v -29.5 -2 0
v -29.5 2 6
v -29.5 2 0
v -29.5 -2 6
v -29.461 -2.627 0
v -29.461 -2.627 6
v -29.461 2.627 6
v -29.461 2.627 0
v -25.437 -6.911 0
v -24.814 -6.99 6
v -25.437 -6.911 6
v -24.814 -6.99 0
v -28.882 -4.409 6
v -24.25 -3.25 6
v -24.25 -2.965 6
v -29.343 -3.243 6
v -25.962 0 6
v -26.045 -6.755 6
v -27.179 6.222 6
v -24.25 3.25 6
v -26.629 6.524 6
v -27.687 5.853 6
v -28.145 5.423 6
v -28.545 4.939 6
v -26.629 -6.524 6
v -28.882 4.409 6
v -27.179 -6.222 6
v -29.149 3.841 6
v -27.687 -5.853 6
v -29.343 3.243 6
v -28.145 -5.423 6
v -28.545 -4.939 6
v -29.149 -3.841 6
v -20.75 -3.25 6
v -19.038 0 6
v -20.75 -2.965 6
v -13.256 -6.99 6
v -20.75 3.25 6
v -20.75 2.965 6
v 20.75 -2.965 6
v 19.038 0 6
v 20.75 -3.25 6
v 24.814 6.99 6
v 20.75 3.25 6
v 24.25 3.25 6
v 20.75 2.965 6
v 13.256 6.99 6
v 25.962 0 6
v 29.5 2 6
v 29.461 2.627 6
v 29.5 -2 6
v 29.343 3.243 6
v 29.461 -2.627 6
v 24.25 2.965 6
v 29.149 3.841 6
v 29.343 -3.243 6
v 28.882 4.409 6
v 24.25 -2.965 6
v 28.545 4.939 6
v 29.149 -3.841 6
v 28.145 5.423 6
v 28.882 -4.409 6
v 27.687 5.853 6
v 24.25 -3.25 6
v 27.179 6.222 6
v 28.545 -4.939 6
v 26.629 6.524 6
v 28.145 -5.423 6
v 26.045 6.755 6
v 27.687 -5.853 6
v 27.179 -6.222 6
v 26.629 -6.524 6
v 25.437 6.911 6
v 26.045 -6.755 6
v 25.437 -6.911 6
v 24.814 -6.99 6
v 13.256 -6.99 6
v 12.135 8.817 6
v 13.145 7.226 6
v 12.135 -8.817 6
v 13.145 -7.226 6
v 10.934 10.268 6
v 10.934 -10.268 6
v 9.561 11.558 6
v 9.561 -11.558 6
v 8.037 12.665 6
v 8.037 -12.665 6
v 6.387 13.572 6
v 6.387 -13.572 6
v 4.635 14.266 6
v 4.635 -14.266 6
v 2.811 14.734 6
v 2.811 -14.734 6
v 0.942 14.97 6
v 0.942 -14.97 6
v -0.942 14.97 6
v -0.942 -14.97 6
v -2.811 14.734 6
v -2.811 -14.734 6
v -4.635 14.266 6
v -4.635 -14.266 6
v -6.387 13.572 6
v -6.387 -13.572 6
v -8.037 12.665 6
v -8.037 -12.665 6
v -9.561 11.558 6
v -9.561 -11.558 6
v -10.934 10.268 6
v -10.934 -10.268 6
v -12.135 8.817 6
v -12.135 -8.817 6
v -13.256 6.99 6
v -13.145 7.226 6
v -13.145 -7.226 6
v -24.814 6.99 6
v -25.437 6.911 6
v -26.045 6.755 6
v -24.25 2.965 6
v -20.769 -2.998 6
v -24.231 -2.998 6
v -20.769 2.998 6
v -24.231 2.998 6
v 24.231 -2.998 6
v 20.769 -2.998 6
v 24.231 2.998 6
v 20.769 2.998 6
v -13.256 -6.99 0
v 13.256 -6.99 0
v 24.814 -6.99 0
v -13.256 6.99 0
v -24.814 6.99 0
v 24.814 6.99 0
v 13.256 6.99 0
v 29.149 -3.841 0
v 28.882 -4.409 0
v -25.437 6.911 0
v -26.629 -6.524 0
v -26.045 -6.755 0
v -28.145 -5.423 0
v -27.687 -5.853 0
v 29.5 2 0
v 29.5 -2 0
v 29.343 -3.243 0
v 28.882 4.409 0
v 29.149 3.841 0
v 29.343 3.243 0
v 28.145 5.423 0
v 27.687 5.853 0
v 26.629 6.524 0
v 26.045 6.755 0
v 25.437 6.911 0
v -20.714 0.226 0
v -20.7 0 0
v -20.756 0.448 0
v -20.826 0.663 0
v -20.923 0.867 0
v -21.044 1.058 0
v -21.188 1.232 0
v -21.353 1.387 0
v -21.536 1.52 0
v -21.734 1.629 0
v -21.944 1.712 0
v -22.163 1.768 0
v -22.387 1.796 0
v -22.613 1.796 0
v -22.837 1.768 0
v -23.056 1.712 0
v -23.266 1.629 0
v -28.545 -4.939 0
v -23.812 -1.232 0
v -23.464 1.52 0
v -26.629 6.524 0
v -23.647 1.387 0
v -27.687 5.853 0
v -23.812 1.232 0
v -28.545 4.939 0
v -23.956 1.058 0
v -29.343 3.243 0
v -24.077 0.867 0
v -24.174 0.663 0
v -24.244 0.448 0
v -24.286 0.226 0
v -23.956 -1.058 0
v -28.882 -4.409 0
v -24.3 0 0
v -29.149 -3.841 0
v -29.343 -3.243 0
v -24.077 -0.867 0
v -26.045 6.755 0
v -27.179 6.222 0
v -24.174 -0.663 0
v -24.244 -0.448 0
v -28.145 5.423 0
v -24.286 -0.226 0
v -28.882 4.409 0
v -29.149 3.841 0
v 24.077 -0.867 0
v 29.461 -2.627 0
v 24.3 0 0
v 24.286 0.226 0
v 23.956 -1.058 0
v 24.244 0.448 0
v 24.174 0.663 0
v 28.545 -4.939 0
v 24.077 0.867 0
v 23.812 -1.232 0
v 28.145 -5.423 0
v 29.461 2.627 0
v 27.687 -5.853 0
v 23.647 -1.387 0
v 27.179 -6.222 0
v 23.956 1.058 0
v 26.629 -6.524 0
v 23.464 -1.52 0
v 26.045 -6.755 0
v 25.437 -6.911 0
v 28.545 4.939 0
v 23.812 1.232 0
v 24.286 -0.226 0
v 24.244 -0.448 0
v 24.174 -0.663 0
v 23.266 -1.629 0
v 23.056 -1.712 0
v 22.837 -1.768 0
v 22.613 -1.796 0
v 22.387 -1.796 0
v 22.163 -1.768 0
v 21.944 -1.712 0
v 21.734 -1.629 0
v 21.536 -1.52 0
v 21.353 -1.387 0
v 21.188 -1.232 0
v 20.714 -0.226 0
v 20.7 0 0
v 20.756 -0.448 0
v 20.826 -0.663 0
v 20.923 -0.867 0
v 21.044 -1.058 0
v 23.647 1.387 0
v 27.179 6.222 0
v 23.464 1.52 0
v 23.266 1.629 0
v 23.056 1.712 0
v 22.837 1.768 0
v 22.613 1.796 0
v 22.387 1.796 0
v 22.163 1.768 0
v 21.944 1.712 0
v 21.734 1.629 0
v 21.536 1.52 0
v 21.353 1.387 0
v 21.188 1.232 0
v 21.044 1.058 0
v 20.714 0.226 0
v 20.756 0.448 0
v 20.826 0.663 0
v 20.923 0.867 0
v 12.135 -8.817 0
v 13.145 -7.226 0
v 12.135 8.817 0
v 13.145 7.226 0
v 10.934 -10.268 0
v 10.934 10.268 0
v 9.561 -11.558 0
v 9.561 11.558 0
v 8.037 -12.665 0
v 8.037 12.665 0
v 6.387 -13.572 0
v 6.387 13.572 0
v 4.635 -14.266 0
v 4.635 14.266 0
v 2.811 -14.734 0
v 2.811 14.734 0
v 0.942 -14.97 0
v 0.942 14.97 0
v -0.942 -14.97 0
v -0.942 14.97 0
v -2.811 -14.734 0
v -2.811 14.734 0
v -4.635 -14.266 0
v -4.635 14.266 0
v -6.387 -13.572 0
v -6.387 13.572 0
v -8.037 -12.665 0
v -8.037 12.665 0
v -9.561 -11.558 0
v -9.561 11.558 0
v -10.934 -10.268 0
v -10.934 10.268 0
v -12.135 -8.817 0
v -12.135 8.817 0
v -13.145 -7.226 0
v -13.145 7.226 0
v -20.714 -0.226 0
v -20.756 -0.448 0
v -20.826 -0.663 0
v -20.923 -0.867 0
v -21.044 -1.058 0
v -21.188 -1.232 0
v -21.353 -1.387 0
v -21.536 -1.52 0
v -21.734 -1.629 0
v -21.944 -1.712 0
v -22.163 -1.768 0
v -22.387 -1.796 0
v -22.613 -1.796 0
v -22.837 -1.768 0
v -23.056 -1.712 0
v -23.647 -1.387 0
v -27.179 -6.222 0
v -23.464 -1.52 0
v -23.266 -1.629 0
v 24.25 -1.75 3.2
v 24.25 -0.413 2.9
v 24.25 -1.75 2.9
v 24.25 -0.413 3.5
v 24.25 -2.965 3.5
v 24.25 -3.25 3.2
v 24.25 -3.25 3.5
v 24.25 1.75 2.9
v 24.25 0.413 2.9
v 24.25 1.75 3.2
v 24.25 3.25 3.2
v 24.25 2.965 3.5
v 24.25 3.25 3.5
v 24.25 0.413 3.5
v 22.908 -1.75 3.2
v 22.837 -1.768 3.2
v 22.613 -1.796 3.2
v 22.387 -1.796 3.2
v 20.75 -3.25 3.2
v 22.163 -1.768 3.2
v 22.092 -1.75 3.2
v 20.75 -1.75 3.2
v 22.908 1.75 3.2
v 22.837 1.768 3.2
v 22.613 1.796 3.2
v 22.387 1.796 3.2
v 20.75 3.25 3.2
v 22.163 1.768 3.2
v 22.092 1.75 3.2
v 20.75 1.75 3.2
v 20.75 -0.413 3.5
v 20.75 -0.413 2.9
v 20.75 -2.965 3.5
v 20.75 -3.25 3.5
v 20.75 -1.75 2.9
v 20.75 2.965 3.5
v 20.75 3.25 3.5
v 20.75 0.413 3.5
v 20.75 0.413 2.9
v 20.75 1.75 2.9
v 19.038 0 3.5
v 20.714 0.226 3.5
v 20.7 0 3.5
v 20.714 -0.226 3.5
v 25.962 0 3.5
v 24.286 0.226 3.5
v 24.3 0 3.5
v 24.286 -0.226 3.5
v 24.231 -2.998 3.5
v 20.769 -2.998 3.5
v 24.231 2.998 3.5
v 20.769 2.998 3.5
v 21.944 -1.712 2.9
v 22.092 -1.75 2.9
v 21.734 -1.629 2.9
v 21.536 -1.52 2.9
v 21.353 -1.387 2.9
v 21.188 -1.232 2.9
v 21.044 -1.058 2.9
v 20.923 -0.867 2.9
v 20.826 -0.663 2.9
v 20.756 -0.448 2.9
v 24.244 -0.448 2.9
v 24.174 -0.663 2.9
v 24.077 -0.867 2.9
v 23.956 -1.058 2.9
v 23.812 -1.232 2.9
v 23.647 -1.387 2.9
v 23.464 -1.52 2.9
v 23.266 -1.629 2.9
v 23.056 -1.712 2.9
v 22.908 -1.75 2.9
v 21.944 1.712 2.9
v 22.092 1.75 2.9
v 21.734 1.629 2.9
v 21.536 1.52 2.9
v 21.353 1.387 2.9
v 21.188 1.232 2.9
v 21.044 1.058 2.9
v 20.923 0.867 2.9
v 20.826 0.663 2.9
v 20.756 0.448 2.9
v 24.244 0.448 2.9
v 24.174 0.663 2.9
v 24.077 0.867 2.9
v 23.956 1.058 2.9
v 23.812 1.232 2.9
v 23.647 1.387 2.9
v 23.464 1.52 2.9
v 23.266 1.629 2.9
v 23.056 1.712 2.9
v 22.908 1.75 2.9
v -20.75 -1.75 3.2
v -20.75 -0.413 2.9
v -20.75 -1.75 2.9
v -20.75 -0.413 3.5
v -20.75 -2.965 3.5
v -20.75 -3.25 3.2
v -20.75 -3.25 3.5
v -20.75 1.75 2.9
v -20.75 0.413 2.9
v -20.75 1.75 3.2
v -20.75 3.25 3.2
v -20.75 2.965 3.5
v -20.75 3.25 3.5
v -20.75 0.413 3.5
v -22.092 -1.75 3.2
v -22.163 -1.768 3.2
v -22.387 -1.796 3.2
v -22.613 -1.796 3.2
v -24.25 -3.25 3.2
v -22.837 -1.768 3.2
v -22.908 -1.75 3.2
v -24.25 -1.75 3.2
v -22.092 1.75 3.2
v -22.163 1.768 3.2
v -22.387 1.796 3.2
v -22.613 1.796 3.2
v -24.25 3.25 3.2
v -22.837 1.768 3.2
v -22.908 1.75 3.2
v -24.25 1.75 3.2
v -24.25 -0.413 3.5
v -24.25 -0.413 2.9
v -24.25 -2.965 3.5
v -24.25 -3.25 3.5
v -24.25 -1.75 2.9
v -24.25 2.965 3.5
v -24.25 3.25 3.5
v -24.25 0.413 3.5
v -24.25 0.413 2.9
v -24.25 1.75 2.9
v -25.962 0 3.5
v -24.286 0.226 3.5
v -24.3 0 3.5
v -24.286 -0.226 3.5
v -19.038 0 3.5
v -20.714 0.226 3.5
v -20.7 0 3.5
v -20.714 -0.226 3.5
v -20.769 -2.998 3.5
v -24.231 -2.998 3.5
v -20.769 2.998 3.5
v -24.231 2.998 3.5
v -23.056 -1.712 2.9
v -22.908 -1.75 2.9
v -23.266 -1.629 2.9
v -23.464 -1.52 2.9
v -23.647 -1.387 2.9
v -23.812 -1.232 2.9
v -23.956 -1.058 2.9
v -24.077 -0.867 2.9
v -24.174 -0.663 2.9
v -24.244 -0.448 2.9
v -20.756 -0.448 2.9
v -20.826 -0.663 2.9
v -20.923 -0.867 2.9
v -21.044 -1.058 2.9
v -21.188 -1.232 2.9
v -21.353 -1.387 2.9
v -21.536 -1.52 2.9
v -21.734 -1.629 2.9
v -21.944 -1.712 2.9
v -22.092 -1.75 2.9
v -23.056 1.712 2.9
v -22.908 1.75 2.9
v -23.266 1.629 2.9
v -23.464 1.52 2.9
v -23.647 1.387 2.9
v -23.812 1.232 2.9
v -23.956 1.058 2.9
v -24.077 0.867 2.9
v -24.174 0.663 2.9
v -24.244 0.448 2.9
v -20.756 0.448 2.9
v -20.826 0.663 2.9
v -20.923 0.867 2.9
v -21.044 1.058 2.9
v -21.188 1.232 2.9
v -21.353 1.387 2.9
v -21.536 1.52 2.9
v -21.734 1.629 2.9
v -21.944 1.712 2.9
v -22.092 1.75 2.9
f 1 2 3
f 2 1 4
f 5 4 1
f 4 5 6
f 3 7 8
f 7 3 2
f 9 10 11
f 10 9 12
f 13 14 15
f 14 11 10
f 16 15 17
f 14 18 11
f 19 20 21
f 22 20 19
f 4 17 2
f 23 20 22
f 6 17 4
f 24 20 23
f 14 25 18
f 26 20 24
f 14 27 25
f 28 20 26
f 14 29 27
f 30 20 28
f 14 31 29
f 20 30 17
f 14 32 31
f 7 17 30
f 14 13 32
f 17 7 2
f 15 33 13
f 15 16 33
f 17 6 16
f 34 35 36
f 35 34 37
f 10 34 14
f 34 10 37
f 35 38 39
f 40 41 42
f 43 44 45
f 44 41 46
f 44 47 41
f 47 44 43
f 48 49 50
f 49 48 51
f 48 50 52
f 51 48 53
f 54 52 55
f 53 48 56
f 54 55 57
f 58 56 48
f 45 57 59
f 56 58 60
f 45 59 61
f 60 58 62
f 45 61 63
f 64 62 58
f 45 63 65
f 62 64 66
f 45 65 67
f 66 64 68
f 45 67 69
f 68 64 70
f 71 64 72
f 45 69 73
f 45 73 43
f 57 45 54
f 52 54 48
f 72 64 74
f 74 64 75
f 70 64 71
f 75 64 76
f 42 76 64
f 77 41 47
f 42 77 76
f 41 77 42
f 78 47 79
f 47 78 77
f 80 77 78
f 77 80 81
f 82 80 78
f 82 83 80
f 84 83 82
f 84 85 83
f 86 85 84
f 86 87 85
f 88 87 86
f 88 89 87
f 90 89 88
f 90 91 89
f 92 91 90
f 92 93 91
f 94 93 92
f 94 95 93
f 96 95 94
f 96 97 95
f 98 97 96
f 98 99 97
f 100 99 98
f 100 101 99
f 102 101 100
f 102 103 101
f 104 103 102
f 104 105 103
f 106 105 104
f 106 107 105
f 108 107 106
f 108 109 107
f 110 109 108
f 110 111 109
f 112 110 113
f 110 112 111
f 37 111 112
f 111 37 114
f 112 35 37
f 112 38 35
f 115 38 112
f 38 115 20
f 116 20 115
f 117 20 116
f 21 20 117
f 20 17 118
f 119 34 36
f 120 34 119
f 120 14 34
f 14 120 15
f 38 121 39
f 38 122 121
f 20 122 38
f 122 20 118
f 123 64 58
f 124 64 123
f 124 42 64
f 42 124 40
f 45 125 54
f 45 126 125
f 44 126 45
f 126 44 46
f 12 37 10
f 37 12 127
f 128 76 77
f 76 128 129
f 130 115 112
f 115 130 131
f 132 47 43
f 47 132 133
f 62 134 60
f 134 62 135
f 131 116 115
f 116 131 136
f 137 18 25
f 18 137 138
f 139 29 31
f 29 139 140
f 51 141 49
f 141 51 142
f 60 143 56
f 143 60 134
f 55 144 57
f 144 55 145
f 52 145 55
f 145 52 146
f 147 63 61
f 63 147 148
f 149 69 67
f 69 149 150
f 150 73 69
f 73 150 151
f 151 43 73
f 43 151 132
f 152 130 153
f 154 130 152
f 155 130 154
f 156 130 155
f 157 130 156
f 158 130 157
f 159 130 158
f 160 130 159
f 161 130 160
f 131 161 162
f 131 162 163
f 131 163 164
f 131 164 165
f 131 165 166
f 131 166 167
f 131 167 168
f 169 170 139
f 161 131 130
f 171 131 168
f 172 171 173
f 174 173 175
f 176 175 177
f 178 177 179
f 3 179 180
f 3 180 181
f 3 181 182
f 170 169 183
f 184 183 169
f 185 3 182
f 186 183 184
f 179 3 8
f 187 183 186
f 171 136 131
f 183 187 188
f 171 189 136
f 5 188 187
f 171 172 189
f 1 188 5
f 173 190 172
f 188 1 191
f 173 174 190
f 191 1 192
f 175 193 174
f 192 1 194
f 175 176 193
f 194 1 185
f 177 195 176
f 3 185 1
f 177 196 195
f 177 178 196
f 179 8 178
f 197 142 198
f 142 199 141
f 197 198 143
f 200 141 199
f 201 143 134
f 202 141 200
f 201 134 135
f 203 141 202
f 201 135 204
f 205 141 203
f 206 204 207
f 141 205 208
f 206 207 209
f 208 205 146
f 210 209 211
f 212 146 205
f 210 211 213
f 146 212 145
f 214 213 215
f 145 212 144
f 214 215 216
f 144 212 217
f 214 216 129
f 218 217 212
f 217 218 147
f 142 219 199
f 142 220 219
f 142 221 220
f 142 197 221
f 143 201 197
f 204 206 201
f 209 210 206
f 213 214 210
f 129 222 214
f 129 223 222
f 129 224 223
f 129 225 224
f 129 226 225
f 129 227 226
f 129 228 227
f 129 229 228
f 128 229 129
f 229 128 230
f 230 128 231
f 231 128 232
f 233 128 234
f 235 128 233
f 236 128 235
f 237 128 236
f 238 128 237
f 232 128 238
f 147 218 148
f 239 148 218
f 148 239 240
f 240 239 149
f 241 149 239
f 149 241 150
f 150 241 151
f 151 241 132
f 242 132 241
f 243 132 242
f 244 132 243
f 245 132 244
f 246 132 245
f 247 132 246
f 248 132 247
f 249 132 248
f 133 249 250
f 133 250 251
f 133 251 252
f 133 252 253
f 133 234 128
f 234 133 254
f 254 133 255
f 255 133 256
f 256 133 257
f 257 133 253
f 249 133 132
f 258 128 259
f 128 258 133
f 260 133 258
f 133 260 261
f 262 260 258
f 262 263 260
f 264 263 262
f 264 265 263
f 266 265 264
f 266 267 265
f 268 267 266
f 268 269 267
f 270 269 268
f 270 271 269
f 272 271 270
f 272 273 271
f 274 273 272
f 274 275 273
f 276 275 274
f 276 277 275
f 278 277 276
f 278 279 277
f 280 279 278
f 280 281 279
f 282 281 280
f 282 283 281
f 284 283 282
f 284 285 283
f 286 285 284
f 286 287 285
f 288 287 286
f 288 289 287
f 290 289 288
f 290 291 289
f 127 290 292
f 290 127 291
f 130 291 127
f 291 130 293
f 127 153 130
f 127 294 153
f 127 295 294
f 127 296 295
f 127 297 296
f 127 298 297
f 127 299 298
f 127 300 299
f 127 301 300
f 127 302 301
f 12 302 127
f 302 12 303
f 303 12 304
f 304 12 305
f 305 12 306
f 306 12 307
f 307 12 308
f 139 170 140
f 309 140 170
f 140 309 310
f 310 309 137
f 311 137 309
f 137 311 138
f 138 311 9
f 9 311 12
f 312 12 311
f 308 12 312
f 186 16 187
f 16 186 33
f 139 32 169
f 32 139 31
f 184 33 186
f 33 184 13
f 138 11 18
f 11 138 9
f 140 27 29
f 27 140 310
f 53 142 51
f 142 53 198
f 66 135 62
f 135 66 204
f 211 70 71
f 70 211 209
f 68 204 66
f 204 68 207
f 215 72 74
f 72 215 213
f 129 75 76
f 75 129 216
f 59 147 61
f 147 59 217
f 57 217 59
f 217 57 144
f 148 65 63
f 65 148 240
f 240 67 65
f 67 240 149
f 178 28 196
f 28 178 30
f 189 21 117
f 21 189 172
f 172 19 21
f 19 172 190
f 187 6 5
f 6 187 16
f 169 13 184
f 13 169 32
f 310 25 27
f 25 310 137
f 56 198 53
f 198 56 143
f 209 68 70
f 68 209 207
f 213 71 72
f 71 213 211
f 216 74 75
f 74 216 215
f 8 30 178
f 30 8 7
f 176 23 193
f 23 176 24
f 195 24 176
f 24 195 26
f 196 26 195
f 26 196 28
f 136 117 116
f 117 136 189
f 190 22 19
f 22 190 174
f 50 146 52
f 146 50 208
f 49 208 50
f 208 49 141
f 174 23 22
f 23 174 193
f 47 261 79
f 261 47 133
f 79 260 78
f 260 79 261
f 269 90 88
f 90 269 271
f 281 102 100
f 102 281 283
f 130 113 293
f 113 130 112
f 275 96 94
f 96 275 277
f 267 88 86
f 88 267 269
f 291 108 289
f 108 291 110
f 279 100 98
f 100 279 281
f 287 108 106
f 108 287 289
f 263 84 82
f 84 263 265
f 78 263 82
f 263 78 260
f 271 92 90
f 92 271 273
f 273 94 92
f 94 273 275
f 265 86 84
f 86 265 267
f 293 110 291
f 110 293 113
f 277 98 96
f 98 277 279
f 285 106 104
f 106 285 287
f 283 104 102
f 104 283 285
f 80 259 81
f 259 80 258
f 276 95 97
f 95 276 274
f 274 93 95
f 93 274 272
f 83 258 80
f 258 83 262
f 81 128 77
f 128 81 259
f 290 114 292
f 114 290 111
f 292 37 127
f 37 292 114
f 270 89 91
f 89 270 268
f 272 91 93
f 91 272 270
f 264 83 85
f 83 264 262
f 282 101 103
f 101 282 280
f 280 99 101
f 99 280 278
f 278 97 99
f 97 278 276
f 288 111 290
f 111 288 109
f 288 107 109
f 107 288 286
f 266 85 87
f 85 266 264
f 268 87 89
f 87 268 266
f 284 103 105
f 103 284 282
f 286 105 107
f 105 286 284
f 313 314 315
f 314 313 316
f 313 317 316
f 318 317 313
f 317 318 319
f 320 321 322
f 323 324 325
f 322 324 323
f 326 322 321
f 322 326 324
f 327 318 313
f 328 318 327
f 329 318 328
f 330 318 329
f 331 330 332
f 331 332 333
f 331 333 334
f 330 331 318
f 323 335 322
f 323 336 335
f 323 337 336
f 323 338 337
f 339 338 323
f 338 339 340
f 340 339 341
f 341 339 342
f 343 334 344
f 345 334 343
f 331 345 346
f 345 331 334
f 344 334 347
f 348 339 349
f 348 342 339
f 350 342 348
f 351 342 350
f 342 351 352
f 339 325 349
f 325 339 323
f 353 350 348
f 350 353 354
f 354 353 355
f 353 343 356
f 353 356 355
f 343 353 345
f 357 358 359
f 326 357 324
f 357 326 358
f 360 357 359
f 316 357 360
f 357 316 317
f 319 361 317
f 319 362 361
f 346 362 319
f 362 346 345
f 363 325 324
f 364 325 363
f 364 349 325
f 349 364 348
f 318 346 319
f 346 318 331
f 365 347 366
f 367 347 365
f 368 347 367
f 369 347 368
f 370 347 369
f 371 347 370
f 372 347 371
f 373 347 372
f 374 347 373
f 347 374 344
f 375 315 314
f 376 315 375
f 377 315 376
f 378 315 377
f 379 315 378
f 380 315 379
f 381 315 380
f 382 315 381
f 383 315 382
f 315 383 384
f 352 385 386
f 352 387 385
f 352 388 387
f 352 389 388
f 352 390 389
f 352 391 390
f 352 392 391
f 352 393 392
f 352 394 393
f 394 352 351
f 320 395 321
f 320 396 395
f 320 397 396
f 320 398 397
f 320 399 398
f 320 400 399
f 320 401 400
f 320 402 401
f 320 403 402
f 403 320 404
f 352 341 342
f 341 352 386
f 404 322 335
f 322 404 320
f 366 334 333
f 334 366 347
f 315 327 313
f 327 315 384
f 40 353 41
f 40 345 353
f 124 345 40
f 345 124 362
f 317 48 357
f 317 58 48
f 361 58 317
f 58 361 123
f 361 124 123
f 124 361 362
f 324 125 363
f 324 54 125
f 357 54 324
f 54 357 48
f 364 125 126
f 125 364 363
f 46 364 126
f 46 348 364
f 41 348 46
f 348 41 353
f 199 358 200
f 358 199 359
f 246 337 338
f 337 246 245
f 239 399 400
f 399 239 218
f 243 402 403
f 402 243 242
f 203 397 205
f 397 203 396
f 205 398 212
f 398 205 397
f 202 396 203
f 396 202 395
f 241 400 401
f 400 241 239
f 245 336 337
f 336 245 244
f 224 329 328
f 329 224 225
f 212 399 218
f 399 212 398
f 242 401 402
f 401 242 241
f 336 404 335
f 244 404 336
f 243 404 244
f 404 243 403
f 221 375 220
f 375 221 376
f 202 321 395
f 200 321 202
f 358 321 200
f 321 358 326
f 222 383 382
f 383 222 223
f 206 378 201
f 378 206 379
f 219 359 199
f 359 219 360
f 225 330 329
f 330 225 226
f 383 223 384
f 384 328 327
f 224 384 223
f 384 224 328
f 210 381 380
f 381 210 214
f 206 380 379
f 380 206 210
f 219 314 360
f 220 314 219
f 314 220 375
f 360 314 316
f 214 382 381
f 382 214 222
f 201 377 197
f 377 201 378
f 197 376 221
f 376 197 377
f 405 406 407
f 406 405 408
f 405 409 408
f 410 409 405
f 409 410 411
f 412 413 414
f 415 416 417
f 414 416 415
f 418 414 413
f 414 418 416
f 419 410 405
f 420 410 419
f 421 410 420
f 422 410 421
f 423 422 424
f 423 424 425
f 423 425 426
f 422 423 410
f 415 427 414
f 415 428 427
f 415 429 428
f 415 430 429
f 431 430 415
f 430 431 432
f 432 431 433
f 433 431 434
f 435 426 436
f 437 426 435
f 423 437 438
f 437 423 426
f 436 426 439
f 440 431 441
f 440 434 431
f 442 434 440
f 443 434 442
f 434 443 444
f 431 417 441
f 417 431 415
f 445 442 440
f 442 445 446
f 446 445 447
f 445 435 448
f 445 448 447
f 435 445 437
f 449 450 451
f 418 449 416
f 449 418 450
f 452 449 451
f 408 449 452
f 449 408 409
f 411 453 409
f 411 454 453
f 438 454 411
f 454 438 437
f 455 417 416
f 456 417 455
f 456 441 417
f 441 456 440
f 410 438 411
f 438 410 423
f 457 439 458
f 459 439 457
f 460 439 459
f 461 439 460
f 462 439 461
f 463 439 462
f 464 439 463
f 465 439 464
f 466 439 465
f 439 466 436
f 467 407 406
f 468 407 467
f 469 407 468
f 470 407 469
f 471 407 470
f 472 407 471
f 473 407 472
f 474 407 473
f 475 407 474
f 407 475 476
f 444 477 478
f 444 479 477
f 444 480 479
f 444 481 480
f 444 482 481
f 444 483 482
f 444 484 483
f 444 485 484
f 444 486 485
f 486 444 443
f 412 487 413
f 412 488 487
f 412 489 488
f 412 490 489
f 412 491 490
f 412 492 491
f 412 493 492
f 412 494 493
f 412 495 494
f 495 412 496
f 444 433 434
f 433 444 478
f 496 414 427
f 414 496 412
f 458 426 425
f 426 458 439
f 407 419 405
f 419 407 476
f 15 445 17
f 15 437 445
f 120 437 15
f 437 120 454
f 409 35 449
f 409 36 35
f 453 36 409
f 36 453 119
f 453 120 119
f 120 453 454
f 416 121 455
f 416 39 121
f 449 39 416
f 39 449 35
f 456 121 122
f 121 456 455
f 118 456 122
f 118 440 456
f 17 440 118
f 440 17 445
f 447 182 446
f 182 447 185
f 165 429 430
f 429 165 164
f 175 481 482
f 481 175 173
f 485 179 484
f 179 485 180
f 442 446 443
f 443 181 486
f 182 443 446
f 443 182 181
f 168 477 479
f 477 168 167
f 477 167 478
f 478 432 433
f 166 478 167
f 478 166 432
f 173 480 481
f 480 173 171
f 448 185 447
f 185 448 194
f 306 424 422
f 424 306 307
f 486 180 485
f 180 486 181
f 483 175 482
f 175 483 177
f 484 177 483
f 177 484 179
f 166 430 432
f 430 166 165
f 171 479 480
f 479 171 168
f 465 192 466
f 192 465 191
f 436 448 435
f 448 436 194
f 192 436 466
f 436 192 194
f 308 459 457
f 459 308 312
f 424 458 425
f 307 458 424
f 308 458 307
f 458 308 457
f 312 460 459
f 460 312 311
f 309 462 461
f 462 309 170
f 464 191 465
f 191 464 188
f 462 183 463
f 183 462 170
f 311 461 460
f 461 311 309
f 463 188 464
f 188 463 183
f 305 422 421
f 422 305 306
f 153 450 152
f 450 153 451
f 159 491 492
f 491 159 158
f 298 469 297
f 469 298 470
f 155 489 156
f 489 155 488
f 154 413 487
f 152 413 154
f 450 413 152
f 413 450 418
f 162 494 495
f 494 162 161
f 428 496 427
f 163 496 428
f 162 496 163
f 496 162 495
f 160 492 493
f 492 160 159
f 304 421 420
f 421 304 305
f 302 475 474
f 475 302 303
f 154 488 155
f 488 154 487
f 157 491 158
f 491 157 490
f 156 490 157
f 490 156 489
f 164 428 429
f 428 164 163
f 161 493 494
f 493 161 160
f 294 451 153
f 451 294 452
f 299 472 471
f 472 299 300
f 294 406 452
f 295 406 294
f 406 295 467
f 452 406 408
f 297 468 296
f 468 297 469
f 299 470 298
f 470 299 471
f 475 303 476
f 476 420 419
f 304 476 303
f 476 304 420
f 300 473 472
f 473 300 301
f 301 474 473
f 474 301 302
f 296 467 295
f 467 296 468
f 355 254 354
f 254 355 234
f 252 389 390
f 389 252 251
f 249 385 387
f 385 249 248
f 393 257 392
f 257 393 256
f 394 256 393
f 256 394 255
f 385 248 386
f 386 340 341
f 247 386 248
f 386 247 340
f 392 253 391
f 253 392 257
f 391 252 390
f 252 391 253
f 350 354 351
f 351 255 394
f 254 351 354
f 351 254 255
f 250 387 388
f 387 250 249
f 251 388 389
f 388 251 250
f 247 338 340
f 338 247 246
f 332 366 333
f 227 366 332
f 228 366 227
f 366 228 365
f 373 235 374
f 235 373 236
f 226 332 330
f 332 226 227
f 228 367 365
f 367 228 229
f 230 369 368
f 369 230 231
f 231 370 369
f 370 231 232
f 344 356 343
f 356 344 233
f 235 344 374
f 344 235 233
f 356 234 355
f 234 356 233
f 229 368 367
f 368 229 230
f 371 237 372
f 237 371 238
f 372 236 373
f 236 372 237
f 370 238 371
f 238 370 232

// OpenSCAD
$fn = 50;


difference() {
	union() {
		hull() {
			translate(v = [-24.5000000000, 2.0000000000, 0]) {
				cylinder(h = 6, r = 5);
			}
			translate(v = [24.5000000000, 2.0000000000, 0]) {
				cylinder(h = 6, r = 5);
			}
			translate(v = [-24.5000000000, -2.0000000000, 0]) {
				cylinder(h = 6, r = 5);
			}
			translate(v = [24.5000000000, -2.0000000000, 0]) {
				cylinder(h = 6, r = 5);
			}
		}
		cylinder(h = 6, r = 15.0000000000);
	}
	union() {
		translate(v = [22.5000000000, 0, -20]) {
			rotate(a = [0, 180, 0]) {
				difference() {
					union() {
						translate(v = [0, 0, -26.0000000000]) {
							rotate(a = [0, 0, 0]) {
								difference() {
									union() {
										#translate(v = [-1.7500000000, -3.2500000000, -0.3000000000]) {
											cube(size = [3.5000000000, 6.5000000000, 0.3000000000]);
										}
										#translate(v = [-1.7500000000, -1.7500000000, -0.6000000000]) {
											cube(size = [3.5000000000, 3.5000000000, 0.3000000000]);
										}
										#translate(v = [-1.7500000000, -3.2500000000, 2.5000000000]) {
											cube(size = [3.5000000000, 6.5000000000, 0.3000000000]);
										}
										#translate(v = [-1.7500000000, -1.7500000000, 2.8000000000]) {
											cube(size = [3.5000000000, 3.5000000000, 0.3000000000]);
										}
										#linear_extrude(height = 2.5000000000) {
											polygon(points = [[3.4620000000, 0.0000000000], [1.7310000000, 2.9981799479], [-1.7310000000, 2.9981799479], [-3.4620000000, 0.0000000000], [-1.7310000000, -2.9981799479], [1.7310000000, -2.9981799479]]);
										}
										#translate(v = [-1.7500000000, -3.2500000000, -0.3000000000]) {
											cube(size = [3.5000000000, 6.5000000000, 0.3000000000]);
										}
										#translate(v = [-1.7500000000, -1.7500000000, -0.6000000000]) {
											cube(size = [3.5000000000, 3.5000000000, 0.3000000000]);
										}
										#translate(v = [-1.7500000000, -3.2500000000, 2.5000000000]) {
											cube(size = [3.5000000000, 6.5000000000, 0.3000000000]);
										}
										#translate(v = [-1.7500000000, -1.7500000000, 2.8000000000]) {
											cube(size = [3.5000000000, 3.5000000000, 0.3000000000]);
										}
										#translate(v = [-1.7500000000, -3.2500000000, -0.3000000000]) {
											cube(size = [3.5000000000, 6.5000000000, 0.3000000000]);
										}
										#translate(v = [-1.7500000000, -1.7500000000, -0.6000000000]) {
											cube(size = [3.5000000000, 3.5000000000, 0.3000000000]);
										}
										#translate(v = [-1.7500000000, -3.2500000000, 2.5000000000]) {
											cube(size = [3.5000000000, 6.5000000000, 0.3000000000]);
										}
										#translate(v = [-1.7500000000, -1.7500000000, 2.8000000000]) {
											cube(size = [3.5000000000, 3.5000000000, 0.3000000000]);
										}
									}
									union();
								}
							}
						}
						translate(v = [0, 0, -26.0000000000]) {
							rotate(a = [0, 0, 0]) {
								difference() {
									union() {
										#translate(v = [-1.7500000000, -3.2500000000, -0.3000000000]) {
											cube(size = [3.5000000000, 6.5000000000, 0.3000000000]);
										}
										#translate(v = [-1.7500000000, -1.7500000000, -0.6000000000]) {
											cube(size = [3.5000000000, 3.5000000000, 0.3000000000]);
										}
										#translate(v = [-1.7500000000, -3.2500000000, 2.5000000000]) {
											cube(size = [3.5000000000, 6.5000000000, 0.3000000000]);
										}
										#translate(v = [-1.7500000000, -1.7500000000, 2.8000000000]) {
											cube(size = [3.5000000000, 3.5000000000, 0.3000000000]);
										}
										#linear_extrude(height = 2.5000000000) {
											polygon(points = [[3.4620000000, 0.0000000000], [1.7310000000, 2.9981799479], [-1.7310000000, 2.9981799479], [-3.4620000000, 0.0000000000], [-1.7310000000, -2.9981799479], [1.7310000000, -2.9981799479]]);
										}
										#translate(v = [-1.7500000000, -3.2500000000, -0.3000000000]) {
											cube(size = [3.5000000000, 6.5000000000, 0.3000000000]);
										}
										#translate(v = [-1.7500000000, -1.7500000000, -0.6000000000]) {
											cube(size = [3.5000000000, 3.5000000000, 0.3000000000]);
										}
										#translate(v = [-1.7500000000, -3.2500000000, 2.5000000000]) {
											cube(size = [3.5000000000, 6.5000000000, 0.3000000000]);
										}
										#translate(v = [-1.7500000000, -1.7500000000, 2.8000000000]) {
											cube(size = [3.5000000000, 3.5000000000, 0.3000000000]);
										}
										#translate(v = [-1.7500000000, -3.2500000000, -0.3000000000]) {
											cube(size = [3.5000000000, 6.5000000000, 0.3000000000]);
										}
										#translate(v = [-1.7500000000, -1.7500000000, -0.6000000000]) {
											cube(size = [3.5000000000, 3.5000000000, 0.3000000000]);
										}
										#translate(v = [-1.7500000000, -3.2500000000, 2.5000000000]) {
											cube(size = [3.5000000000, 6.5000000000, 0.3000000000]);
										}
										#translate(v = [-1.7500000000, -1.7500000000, 2.8000000000]) {
											cube(size = [3.5000000000, 3.5000000000, 0.3000000000]);
										}
									}
									union();
								}
							}
						}
						translate(v = [0, 0, -26.0000000000]) {
							rotate(a = [0, 0, 0]) {
								difference() {
									union() {
										#translate(v = [-1.7500000000, -3.2500000000, -0.3000000000]) {
											cube(size = [3.5000000000, 6.5000000000, 0.3000000000]);
										}
										#translate(v = [-1.7500000000, -1.7500000000, -0.6000000000]) {
											cube(size = [3.5000000000, 3.5000000000, 0.3000000000]);
										}
										#translate(v = [-1.7500000000, -3.2500000000, 2.5000000000]) {
											cube(size = [3.5000000000, 6.5000000000, 0.3000000000]);
										}
										#translate(v = [-1.7500000000, -1.7500000000, 2.8000000000]) {
											cube(size = [3.5000000000, 3.5000000000, 0.3000000000]);
										}
										#linear_extrude(height = 2.5000000000) {
											polygon(points = [[3.4620000000, 0.0000000000], [1.7310000000, 2.9981799479], [-1.7310000000, 2.9981799479], [-3.4620000000, 0.0000000000], [-1.7310000000, -2.9981799479], [1.7310000000, -2.9981799479]]);
										}
										#translate(v = [-1.7500000000, -3.2500000000, -0.3000000000]) {
											cube(size = [3.5000000000, 6.5000000000, 0.3000000000]);
										}
										#translate(v = [-1.7500000000, -1.7500000000, -0.6000000000]) {
											cube(size = [3.5000000000, 3.5000000000, 0.3000000000]);
										}
										#translate(v = [-1.7500000000, -3.2500000000, 2.5000000000]) {
											cube(size = [3.5000000000, 6.5000000000, 0.3000000000]);
										}
										#translate(v = [-1.7500000000, -1.7500000000, 2.8000000000]) {
											cube(size = [3.5000000000, 3.5000000000, 0.3000000000]);
										}
										#translate(v = [-1.7500000000, -3.2500000000, -0.3000000000]) {
											cube(size = [3.5000000000, 6.5000000000, 0.3000000000]);
										}
										#translate(v = [-1.7500000000, -1.7500000000, -0.6000000000]) {
											cube(size = [3.5000000000, 3.5000000000, 0.3000000000]);
										}
										#translate(v = [-1.7500000000, -3.2500000000, 2.5000000000]) {
											cube(size = [3.5000000000, 6.5000000000, 0.3000000000]);
										}
										#translate(v = [-1.7500000000, -1.7500000000, 2.8000000000]) {
											cube(size = [3.5000000000, 3.5000000000, 0.3000000000]);
										}
									}
									union();
								}
							}
						}
						#translate(v = [0, 0, -26.0000000000]) {
							cylinder(h = 26, r = 1.5000000000);
						}
						#translate(v = [0, 0, -1.9000000000]) {
							cylinder(h = 1.9000000000, r1 = 1.8000000000, r2 = 3.6000000000);
						}
						#translate(v = [0, 0, -26.0000000000]) {
							cylinder(h = 26, r = 1.8000000000);
						}
						#translate(v = [0, 0, -26.0000000000]) {
							cylinder(h = 26, r = 1.5000000000);
						}
					}
					union();
				}
			}
		}
		translate(v = [-22.5000000000, 0, -20]) {
			rotate(a = [0, 180, 0]) {
				difference() {
					union() {
						translate(v = [0, 0, -26.0000000000]) {
							rotate(a = [0, 0, 0]) {
								difference() {
									union() {
										#translate(v = [-1.7500000000, -3.2500000000, -0.3000000000]) {
											cube(size = [3.5000000000, 6.5000000000, 0.3000000000]);
										}
										#translate(v = [-1.7500000000, -1.7500000000, -0.6000000000]) {
											cube(size = [3.5000000000, 3.5000000000, 0.3000000000]);
										}
										#translate(v = [-1.7500000000, -3.2500000000, 2.5000000000]) {
											cube(size = [3.5000000000, 6.5000000000, 0.3000000000]);
										}
										#translate(v = [-1.7500000000, -1.7500000000, 2.8000000000]) {
											cube(size = [3.5000000000, 3.5000000000, 0.3000000000]);
										}
										#linear_extrude(height = 2.5000000000) {
											polygon(points = [[3.4620000000, 0.0000000000], [1.7310000000, 2.9981799479], [-1.7310000000, 2.9981799479], [-3.4620000000, 0.0000000000], [-1.7310000000, -2.9981799479], [1.7310000000, -2.9981799479]]);
										}
										#translate(v = [-1.7500000000, -3.2500000000, -0.3000000000]) {
											cube(size = [3.5000000000, 6.5000000000, 0.3000000000]);
										}
										#translate(v = [-1.7500000000, -1.7500000000, -0.6000000000]) {
											cube(size = [3.5000000000, 3.5000000000, 0.3000000000]);
										}
										#translate(v = [-1.7500000000, -3.2500000000, 2.5000000000]) {
											cube(size = [3.5000000000, 6.5000000000, 0.3000000000]);
										}
										#translate(v = [-1.7500000000, -1.7500000000, 2.8000000000]) {
											cube(size = [3.5000000000, 3.5000000000, 0.3000000000]);
										}
										#translate(v = [-1.7500000000, -3.2500000000, -0.3000000000]) {
											cube(size = [3.5000000000, 6.5000000000, 0.3000000000]);
										}
										#translate(v = [-1.7500000000, -1.7500000000, -0.6000000000]) {
											cube(size = [3.5000000000, 3.5000000000, 0.3000000000]);
										}
										#translate(v = [-1.7500000000, -3.2500000000, 2.5000000000]) {
											cube(size = [3.5000000000, 6.5000000000, 0.3000000000]);
										}
										#translate(v = [-1.7500000000, -1.7500000000, 2.8000000000]) {
											cube(size = [3.5000000000, 3.5000000000, 0.3000000000]);
										}
									}
									union();
								}
							}
						}
						translate(v = [0, 0, -26.0000000000]) {
							rotate(a = [0, 0, 0]) {
								difference() {
									union() {
										#translate(v = [-1.7500000000, -3.2500000000, -0.3000000000]) {
											cube(size = [3.5000000000, 6.5000000000, 0.3000000000]);
										}
										#translate(v = [-1.7500000000, -1.7500000000, -0.6000000000]) {
											cube(size = [3.5000000000, 3.5000000000, 0.3000000000]);
										}
										#translate(v = [-1.7500000000, -3.2500000000, 2.5000000000]) {
											cube(size = [3.5000000000, 6.5000000000, 0.3000000000]);
										}
										#translate(v = [-1.7500000000, -1.7500000000, 2.8000000000]) {
											cube(size = [3.5000000000, 3.5000000000, 0.3000000000]);
										}
										#linear_extrude(height = 2.5000000000) {
											polygon(points = [[3.4620000000, 0.0000000000], [1.7310000000, 2.9981799479], [-1.7310000000, 2.9981799479], [-3.4620000000, 0.0000000000], [-1.7310000000, -2.9981799479], [1.7310000000, -2.9981799479]]);
										}
										#translate(v = [-1.7500000000, -3.2500000000, -0.3000000000]) {
											cube(size = [3.5000000000, 6.5000000000, 0.3000000000]);
										}
										#translate(v = [-1.7500000000, -1.7500000000, -0.6000000000]) {
											cube(size = [3.5000000000, 3.5000000000, 0.3000000000]);
										}
										#translate(v = [-1.7500000000, -3.2500000000, 2.5000000000]) {
											cube(size = [3.5000000000, 6.5000000000, 0.3000000000]);
										}
										#translate(v = [-1.7500000000, -1.7500000000, 2.8000000000]) {
											cube(size = [3.5000000000, 3.5000000000, 0.3000000000]);
										}
										#translate(v = [-1.7500000000, -3.2500000000, -0.3000000000]) {
											cube(size = [3.5000000000, 6.5000000000, 0.3000000000]);
										}
										#translate(v = [-1.7500000000, -1.7500000000, -0.6000000000]) {
											cube(size = [3.5000000000, 3.5000000000, 0.3000000000]);
										}
										#translate(v = [-1.7500000000, -3.2500000000, 2.5000000000]) {
											cube(size = [3.5000000000, 6.5000000000, 0.3000000000]);
										}
										#translate(v = [-1.7500000000, -1.7500000000, 2.8000000000]) {
											cube(size = [3.5000000000, 3.5000000000, 0.3000000000]);
										}
									}
									union();
								}
							}
						}
						translate(v = [0, 0, -26.0000000000]) {
							rotate(a = [0, 0, 0]) {
								difference() {
									union() {
										#translate(v = [-1.7500000000, -3.2500000000, -0.3000000000]) {
											cube(size = [3.5000000000, 6.5000000000, 0.3000000000]);
										}
										#translate(v = [-1.7500000000, -1.7500000000, -0.6000000000]) {
											cube(size = [3.5000000000, 3.5000000000, 0.3000000000]);
										}
										#translate(v = [-1.7500000000, -3.2500000000, 2.5000000000]) {
											cube(size = [3.5000000000, 6.5000000000, 0.3000000000]);
										}
										#translate(v = [-1.7500000000, -1.7500000000, 2.8000000000]) {
											cube(size = [3.5000000000, 3.5000000000, 0.3000000000]);
										}
										#linear_extrude(height = 2.5000000000) {
											polygon(points = [[3.4620000000, 0.0000000000], [1.7310000000, 2.9981799479], [-1.7310000000, 2.9981799479], [-3.4620000000, 0.0000000000], [-1.7310000000, -2.9981799479], [1.7310000000, -2.9981799479]]);
										}
										#translate(v = [-1.7500000000, -3.2500000000, -0.3000000000]) {
											cube(size = [3.5000000000, 6.5000000000, 0.3000000000]);
										}
										#translate(v = [-1.7500000000, -1.7500000000, -0.6000000000]) {
											cube(size = [3.5000000000, 3.5000000000, 0.3000000000]);
										}
										#translate(v = [-1.7500000000, -3.2500000000, 2.5000000000]) {
											cube(size = [3.5000000000, 6.5000000000, 0.3000000000]);
										}
										#translate(v = [-1.7500000000, -1.7500000000, 2.8000000000]) {
											cube(size = [3.5000000000, 3.5000000000, 0.3000000000]);
										}
										#translate(v = [-1.7500000000, -3.2500000000, -0.3000000000]) {
											cube(size = [3.5000000000, 6.5000000000, 0.3000000000]);
										}
										#translate(v = [-1.7500000000, -1.7500000000, -0.6000000000]) {
											cube(size = [3.5000000000, 3.5000000000, 0.3000000000]);
										}
										#translate(v = [-1.7500000000, -3.2500000000, 2.5000000000]) {
											cube(size = [3.5000000000, 6.5000000000, 0.3000000000]);
										}
										#translate(v = [-1.7500000000, -1.7500000000, 2.8000000000]) {
											cube(size = [3.5000000000, 3.5000000000, 0.3000000000]);
										}
									}
									union();
								}
							}
						}
						#translate(v = [0, 0, -26.0000000000]) {
							cylinder(h = 26, r = 1.5000000000);
						}
						#translate(v = [0, 0, -1.9000000000]) {
							cylinder(h = 1.9000000000, r1 = 1.8000000000, r2 = 3.6000000000);
						}
						#translate(v = [0, 0, -26.0000000000]) {
							cylinder(h = 26, r = 1.8000000000);
						}
						#translate(v = [0, 0, -26.0000000000]) {
							cylinder(h = 26, r = 1.5000000000);
						}
					}
					union();
				}
			}
		}
		translate(v = [-22.5000000000, 0.0000000000, 0]) {
			cylinder(h = 6, r = 1.8000000000);
		}
		translate(v = [22.5000000000, 0.0000000000, 0]) {
			cylinder(h = 6, r = 1.8000000000);
		}
		translate(v = [-22.5000000000, 0.0000000000, 0]) {
			cylinder(h = 6, r = 1.8000000000);
		}
		translate(v = [22.5000000000, 0.0000000000, 0]) {
			cylinder(h = 6, r = 1.8000000000);
		}
		translate(v = [-22.5000000000, 0.0000000000, 0]) {
			cylinder(h = 6, r = 1.8000000000);
		}
		translate(v = [22.5000000000, 0.0000000000, 0]) {
			cylinder(h = 6, r = 1.8000000000);
		}
		translate(v = [-22.5000000000, 0.0000000000, 0]) {
			cylinder(h = 6, r = 1.8000000000);
		}
		translate(v = [22.5000000000, 0.0000000000, 0]) {
			cylinder(h = 6, r = 1.8000000000);
		}
	}
}
